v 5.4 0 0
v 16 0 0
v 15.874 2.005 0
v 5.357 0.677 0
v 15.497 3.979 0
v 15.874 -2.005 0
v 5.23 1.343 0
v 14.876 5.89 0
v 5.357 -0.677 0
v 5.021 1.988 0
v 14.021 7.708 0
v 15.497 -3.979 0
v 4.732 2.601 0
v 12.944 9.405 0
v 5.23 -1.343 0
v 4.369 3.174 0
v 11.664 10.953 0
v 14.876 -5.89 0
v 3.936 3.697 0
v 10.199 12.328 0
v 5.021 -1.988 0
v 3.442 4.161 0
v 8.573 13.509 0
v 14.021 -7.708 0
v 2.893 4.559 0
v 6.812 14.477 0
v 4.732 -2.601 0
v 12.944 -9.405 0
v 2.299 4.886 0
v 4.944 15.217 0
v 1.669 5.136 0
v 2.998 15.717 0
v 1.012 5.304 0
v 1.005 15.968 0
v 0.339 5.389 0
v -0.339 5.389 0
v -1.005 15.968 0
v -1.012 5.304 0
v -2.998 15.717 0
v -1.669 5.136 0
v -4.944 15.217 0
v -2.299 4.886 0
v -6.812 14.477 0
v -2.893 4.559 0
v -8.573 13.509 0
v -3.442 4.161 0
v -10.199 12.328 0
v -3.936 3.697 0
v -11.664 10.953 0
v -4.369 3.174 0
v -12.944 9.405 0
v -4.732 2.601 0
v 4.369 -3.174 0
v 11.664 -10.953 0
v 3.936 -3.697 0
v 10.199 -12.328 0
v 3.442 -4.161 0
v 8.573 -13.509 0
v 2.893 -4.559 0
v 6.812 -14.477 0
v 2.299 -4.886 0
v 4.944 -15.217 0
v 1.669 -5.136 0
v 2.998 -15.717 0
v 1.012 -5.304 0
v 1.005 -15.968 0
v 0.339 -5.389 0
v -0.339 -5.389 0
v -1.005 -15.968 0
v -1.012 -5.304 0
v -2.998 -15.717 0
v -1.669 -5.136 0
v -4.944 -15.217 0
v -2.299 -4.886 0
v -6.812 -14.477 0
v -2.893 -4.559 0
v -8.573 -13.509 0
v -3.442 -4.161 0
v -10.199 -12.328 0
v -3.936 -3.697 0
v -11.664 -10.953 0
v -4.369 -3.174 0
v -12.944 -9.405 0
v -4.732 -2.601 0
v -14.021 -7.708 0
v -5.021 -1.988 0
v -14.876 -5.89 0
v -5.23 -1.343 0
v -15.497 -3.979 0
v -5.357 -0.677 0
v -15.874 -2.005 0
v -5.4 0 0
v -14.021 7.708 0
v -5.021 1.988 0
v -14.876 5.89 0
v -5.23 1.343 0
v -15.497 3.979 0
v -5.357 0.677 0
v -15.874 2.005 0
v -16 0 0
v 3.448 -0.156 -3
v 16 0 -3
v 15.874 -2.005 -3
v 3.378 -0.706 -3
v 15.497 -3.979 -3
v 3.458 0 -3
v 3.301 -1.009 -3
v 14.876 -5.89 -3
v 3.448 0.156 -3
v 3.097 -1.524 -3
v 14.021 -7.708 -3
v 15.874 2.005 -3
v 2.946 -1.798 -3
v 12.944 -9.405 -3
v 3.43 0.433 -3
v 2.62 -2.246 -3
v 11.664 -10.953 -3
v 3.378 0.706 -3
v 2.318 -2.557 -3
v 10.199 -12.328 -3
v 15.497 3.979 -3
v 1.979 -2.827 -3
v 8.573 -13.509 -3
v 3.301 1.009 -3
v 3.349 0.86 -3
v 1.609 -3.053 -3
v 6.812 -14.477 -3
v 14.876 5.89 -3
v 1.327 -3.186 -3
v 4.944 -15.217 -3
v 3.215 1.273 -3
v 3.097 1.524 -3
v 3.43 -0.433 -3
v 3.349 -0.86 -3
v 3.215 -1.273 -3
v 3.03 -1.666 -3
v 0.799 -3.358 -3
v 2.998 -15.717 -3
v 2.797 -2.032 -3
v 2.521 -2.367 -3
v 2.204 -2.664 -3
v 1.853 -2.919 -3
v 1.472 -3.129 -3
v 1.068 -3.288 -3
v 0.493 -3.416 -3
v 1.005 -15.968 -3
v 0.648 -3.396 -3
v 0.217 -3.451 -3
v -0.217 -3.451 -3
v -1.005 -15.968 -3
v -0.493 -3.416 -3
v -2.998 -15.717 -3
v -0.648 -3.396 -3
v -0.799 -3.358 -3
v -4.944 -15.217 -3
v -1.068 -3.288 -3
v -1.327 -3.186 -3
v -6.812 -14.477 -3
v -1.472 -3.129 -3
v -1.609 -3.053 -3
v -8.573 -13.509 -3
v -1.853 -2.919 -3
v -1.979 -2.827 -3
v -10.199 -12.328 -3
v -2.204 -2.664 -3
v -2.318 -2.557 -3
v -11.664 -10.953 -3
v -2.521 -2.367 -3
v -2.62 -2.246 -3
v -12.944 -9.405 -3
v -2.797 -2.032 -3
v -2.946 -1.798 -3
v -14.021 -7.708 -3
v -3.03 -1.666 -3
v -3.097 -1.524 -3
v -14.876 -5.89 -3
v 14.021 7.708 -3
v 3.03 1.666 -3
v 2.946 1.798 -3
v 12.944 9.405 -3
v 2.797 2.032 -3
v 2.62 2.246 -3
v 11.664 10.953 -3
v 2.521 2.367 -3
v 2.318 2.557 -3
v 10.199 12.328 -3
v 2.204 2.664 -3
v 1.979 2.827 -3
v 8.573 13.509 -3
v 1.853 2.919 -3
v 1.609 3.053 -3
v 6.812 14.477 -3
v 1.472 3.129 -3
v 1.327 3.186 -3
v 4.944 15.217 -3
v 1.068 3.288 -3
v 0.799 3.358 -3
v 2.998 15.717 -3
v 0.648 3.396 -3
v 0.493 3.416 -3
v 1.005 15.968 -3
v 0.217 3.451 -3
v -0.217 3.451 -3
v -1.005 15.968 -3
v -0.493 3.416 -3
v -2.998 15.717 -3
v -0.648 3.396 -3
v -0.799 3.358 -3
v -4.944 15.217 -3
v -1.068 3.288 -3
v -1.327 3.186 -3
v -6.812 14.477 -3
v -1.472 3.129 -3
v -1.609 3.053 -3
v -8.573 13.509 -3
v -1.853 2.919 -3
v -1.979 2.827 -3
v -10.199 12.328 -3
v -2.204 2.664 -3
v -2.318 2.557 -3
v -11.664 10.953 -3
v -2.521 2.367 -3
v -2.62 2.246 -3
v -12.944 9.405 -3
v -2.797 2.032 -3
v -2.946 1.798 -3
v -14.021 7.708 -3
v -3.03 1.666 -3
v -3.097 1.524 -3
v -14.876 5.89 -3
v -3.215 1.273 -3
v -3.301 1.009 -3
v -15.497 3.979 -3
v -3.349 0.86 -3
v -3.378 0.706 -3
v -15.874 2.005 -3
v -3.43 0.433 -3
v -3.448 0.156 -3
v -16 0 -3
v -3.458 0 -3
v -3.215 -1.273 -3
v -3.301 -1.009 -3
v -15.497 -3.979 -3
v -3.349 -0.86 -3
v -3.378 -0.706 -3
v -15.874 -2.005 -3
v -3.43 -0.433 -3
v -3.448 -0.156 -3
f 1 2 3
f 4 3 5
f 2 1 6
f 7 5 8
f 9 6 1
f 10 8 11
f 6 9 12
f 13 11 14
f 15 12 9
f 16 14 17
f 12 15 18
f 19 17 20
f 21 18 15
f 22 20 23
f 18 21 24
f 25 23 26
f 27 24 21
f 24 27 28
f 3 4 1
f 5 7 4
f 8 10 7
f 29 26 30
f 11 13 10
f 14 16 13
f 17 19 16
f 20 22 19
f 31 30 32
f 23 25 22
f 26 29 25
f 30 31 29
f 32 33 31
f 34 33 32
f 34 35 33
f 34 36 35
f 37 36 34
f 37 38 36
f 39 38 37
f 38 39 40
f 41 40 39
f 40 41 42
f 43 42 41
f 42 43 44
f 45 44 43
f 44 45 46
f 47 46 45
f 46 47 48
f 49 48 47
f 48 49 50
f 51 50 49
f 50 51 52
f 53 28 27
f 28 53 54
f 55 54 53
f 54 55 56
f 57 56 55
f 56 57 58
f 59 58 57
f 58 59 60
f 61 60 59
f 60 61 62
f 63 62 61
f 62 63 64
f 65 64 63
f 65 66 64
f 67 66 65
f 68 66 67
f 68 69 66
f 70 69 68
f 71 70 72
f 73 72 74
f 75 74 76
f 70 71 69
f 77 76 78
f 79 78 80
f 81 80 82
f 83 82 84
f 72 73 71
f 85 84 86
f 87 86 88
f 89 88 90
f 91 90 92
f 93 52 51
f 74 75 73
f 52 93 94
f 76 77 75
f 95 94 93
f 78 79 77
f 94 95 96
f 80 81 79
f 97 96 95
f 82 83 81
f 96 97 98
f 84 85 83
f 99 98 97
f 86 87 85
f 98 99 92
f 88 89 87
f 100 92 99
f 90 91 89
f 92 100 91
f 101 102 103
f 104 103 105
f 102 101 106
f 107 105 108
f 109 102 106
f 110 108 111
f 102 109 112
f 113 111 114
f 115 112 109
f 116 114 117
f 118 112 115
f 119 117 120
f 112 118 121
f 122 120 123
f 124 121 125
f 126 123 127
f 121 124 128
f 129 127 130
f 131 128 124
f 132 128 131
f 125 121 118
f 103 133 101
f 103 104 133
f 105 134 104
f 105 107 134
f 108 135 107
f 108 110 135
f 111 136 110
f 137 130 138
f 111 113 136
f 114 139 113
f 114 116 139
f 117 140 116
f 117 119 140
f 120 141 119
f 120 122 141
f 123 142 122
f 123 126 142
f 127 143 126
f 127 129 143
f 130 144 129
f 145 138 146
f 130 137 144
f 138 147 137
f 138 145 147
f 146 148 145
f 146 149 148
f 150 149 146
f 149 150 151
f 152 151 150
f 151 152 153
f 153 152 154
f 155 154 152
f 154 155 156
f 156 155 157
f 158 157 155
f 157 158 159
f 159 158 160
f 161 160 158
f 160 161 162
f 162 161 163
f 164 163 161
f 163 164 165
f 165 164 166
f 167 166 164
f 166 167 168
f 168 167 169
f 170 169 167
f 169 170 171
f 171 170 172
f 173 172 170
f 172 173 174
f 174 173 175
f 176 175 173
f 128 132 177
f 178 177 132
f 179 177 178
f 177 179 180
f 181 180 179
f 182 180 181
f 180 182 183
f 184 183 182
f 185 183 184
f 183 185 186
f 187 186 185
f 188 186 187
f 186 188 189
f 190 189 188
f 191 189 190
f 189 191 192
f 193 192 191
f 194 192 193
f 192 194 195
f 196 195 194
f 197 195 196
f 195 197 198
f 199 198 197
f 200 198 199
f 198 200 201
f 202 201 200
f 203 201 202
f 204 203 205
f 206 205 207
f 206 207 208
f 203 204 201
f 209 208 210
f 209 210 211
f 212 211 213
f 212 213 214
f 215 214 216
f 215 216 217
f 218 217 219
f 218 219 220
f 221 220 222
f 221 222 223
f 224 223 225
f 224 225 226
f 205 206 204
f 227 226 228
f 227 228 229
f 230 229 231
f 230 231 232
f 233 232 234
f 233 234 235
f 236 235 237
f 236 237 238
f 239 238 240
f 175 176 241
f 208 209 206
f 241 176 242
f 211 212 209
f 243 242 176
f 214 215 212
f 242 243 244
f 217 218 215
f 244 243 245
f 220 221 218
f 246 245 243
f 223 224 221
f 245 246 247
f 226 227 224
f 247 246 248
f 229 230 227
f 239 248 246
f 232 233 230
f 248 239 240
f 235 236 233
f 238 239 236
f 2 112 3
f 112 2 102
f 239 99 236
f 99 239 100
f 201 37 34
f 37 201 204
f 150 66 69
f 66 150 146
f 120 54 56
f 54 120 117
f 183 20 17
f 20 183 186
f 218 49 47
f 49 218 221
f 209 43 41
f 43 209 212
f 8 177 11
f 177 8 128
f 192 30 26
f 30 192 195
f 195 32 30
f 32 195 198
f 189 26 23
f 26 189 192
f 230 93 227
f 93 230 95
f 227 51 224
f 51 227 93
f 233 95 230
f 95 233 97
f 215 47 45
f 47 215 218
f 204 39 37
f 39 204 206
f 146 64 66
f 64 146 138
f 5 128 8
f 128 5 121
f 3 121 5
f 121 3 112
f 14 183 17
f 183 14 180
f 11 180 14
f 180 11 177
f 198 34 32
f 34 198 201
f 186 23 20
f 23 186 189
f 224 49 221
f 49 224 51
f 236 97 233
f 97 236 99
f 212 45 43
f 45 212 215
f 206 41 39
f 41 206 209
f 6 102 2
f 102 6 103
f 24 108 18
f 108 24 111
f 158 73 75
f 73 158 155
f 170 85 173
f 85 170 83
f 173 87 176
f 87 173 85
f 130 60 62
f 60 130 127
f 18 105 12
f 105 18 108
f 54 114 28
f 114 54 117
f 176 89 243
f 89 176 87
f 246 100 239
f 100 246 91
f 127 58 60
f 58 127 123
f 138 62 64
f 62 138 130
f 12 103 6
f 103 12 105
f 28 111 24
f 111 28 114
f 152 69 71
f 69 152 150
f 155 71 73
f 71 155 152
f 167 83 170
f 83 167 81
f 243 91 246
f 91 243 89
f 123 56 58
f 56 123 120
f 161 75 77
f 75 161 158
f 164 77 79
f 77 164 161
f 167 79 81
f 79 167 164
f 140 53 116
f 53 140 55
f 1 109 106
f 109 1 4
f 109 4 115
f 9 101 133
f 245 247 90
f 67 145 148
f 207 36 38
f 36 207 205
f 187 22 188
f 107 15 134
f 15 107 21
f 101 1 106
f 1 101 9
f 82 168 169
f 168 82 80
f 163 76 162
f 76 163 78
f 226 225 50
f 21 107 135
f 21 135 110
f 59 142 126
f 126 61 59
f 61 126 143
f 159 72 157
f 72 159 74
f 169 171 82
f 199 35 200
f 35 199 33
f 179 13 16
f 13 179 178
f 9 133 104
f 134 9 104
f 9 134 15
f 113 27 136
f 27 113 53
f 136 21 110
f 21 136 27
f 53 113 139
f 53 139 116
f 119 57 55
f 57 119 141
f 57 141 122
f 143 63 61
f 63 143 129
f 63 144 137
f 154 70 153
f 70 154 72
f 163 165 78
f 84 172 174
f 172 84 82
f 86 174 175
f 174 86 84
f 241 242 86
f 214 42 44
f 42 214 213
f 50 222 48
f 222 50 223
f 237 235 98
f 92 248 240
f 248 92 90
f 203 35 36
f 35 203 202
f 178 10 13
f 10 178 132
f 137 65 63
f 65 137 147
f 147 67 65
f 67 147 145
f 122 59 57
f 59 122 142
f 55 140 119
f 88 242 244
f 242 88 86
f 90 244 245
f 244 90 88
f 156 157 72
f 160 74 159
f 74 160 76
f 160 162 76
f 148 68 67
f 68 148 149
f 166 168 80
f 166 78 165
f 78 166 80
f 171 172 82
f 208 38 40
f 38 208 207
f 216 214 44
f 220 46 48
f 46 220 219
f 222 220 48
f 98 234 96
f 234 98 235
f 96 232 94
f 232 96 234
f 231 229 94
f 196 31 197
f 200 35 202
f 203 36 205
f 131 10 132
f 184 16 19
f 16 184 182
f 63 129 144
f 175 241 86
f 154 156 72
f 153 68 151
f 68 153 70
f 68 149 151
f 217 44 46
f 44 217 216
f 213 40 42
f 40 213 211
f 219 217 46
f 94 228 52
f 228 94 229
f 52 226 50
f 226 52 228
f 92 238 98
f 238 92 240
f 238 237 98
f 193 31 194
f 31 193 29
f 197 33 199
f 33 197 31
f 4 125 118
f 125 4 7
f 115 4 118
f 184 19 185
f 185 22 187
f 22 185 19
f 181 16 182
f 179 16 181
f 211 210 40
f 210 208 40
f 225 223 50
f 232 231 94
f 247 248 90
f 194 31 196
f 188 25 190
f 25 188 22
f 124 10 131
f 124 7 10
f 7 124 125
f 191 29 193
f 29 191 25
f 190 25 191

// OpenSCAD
$fn = 50;


difference() {
	union() {
		translate(v = [0, 0, -3.0000000000]) {
			cylinder(h = 3, r = 7.0000000000);
		}
		translate(v = [0, 0, -3.0000000000]) {
			cylinder(h = 3, r = 16.0000000000);
		}
	}
	union() {
		translate(v = [0, 0, 0]) {
			rotate(a = [0, 0, 0]) {
				difference() {
					union() {
						#translate(v = [0, 0, -3.0000000000]) {
							cylinder(h = 3, r = 2.6000000000);
						}
						#translate(v = [0, 0, -3.9000000000]) {
							cylinder(h = 3.9000000000, r = 7.0000000000, r1 = 2.8750000000, r2 = 5.4000000000);
						}
						#translate(v = [0, 0, -3.0000000000]) {
							cylinder(h = 3, r = 2.8750000000);
						}
						#translate(v = [0, 0, -3.0000000000]) {
							cylinder(h = 3, r = 2.6000000000);
						}
					}
					union();
				}
			}
		}
	}
}
